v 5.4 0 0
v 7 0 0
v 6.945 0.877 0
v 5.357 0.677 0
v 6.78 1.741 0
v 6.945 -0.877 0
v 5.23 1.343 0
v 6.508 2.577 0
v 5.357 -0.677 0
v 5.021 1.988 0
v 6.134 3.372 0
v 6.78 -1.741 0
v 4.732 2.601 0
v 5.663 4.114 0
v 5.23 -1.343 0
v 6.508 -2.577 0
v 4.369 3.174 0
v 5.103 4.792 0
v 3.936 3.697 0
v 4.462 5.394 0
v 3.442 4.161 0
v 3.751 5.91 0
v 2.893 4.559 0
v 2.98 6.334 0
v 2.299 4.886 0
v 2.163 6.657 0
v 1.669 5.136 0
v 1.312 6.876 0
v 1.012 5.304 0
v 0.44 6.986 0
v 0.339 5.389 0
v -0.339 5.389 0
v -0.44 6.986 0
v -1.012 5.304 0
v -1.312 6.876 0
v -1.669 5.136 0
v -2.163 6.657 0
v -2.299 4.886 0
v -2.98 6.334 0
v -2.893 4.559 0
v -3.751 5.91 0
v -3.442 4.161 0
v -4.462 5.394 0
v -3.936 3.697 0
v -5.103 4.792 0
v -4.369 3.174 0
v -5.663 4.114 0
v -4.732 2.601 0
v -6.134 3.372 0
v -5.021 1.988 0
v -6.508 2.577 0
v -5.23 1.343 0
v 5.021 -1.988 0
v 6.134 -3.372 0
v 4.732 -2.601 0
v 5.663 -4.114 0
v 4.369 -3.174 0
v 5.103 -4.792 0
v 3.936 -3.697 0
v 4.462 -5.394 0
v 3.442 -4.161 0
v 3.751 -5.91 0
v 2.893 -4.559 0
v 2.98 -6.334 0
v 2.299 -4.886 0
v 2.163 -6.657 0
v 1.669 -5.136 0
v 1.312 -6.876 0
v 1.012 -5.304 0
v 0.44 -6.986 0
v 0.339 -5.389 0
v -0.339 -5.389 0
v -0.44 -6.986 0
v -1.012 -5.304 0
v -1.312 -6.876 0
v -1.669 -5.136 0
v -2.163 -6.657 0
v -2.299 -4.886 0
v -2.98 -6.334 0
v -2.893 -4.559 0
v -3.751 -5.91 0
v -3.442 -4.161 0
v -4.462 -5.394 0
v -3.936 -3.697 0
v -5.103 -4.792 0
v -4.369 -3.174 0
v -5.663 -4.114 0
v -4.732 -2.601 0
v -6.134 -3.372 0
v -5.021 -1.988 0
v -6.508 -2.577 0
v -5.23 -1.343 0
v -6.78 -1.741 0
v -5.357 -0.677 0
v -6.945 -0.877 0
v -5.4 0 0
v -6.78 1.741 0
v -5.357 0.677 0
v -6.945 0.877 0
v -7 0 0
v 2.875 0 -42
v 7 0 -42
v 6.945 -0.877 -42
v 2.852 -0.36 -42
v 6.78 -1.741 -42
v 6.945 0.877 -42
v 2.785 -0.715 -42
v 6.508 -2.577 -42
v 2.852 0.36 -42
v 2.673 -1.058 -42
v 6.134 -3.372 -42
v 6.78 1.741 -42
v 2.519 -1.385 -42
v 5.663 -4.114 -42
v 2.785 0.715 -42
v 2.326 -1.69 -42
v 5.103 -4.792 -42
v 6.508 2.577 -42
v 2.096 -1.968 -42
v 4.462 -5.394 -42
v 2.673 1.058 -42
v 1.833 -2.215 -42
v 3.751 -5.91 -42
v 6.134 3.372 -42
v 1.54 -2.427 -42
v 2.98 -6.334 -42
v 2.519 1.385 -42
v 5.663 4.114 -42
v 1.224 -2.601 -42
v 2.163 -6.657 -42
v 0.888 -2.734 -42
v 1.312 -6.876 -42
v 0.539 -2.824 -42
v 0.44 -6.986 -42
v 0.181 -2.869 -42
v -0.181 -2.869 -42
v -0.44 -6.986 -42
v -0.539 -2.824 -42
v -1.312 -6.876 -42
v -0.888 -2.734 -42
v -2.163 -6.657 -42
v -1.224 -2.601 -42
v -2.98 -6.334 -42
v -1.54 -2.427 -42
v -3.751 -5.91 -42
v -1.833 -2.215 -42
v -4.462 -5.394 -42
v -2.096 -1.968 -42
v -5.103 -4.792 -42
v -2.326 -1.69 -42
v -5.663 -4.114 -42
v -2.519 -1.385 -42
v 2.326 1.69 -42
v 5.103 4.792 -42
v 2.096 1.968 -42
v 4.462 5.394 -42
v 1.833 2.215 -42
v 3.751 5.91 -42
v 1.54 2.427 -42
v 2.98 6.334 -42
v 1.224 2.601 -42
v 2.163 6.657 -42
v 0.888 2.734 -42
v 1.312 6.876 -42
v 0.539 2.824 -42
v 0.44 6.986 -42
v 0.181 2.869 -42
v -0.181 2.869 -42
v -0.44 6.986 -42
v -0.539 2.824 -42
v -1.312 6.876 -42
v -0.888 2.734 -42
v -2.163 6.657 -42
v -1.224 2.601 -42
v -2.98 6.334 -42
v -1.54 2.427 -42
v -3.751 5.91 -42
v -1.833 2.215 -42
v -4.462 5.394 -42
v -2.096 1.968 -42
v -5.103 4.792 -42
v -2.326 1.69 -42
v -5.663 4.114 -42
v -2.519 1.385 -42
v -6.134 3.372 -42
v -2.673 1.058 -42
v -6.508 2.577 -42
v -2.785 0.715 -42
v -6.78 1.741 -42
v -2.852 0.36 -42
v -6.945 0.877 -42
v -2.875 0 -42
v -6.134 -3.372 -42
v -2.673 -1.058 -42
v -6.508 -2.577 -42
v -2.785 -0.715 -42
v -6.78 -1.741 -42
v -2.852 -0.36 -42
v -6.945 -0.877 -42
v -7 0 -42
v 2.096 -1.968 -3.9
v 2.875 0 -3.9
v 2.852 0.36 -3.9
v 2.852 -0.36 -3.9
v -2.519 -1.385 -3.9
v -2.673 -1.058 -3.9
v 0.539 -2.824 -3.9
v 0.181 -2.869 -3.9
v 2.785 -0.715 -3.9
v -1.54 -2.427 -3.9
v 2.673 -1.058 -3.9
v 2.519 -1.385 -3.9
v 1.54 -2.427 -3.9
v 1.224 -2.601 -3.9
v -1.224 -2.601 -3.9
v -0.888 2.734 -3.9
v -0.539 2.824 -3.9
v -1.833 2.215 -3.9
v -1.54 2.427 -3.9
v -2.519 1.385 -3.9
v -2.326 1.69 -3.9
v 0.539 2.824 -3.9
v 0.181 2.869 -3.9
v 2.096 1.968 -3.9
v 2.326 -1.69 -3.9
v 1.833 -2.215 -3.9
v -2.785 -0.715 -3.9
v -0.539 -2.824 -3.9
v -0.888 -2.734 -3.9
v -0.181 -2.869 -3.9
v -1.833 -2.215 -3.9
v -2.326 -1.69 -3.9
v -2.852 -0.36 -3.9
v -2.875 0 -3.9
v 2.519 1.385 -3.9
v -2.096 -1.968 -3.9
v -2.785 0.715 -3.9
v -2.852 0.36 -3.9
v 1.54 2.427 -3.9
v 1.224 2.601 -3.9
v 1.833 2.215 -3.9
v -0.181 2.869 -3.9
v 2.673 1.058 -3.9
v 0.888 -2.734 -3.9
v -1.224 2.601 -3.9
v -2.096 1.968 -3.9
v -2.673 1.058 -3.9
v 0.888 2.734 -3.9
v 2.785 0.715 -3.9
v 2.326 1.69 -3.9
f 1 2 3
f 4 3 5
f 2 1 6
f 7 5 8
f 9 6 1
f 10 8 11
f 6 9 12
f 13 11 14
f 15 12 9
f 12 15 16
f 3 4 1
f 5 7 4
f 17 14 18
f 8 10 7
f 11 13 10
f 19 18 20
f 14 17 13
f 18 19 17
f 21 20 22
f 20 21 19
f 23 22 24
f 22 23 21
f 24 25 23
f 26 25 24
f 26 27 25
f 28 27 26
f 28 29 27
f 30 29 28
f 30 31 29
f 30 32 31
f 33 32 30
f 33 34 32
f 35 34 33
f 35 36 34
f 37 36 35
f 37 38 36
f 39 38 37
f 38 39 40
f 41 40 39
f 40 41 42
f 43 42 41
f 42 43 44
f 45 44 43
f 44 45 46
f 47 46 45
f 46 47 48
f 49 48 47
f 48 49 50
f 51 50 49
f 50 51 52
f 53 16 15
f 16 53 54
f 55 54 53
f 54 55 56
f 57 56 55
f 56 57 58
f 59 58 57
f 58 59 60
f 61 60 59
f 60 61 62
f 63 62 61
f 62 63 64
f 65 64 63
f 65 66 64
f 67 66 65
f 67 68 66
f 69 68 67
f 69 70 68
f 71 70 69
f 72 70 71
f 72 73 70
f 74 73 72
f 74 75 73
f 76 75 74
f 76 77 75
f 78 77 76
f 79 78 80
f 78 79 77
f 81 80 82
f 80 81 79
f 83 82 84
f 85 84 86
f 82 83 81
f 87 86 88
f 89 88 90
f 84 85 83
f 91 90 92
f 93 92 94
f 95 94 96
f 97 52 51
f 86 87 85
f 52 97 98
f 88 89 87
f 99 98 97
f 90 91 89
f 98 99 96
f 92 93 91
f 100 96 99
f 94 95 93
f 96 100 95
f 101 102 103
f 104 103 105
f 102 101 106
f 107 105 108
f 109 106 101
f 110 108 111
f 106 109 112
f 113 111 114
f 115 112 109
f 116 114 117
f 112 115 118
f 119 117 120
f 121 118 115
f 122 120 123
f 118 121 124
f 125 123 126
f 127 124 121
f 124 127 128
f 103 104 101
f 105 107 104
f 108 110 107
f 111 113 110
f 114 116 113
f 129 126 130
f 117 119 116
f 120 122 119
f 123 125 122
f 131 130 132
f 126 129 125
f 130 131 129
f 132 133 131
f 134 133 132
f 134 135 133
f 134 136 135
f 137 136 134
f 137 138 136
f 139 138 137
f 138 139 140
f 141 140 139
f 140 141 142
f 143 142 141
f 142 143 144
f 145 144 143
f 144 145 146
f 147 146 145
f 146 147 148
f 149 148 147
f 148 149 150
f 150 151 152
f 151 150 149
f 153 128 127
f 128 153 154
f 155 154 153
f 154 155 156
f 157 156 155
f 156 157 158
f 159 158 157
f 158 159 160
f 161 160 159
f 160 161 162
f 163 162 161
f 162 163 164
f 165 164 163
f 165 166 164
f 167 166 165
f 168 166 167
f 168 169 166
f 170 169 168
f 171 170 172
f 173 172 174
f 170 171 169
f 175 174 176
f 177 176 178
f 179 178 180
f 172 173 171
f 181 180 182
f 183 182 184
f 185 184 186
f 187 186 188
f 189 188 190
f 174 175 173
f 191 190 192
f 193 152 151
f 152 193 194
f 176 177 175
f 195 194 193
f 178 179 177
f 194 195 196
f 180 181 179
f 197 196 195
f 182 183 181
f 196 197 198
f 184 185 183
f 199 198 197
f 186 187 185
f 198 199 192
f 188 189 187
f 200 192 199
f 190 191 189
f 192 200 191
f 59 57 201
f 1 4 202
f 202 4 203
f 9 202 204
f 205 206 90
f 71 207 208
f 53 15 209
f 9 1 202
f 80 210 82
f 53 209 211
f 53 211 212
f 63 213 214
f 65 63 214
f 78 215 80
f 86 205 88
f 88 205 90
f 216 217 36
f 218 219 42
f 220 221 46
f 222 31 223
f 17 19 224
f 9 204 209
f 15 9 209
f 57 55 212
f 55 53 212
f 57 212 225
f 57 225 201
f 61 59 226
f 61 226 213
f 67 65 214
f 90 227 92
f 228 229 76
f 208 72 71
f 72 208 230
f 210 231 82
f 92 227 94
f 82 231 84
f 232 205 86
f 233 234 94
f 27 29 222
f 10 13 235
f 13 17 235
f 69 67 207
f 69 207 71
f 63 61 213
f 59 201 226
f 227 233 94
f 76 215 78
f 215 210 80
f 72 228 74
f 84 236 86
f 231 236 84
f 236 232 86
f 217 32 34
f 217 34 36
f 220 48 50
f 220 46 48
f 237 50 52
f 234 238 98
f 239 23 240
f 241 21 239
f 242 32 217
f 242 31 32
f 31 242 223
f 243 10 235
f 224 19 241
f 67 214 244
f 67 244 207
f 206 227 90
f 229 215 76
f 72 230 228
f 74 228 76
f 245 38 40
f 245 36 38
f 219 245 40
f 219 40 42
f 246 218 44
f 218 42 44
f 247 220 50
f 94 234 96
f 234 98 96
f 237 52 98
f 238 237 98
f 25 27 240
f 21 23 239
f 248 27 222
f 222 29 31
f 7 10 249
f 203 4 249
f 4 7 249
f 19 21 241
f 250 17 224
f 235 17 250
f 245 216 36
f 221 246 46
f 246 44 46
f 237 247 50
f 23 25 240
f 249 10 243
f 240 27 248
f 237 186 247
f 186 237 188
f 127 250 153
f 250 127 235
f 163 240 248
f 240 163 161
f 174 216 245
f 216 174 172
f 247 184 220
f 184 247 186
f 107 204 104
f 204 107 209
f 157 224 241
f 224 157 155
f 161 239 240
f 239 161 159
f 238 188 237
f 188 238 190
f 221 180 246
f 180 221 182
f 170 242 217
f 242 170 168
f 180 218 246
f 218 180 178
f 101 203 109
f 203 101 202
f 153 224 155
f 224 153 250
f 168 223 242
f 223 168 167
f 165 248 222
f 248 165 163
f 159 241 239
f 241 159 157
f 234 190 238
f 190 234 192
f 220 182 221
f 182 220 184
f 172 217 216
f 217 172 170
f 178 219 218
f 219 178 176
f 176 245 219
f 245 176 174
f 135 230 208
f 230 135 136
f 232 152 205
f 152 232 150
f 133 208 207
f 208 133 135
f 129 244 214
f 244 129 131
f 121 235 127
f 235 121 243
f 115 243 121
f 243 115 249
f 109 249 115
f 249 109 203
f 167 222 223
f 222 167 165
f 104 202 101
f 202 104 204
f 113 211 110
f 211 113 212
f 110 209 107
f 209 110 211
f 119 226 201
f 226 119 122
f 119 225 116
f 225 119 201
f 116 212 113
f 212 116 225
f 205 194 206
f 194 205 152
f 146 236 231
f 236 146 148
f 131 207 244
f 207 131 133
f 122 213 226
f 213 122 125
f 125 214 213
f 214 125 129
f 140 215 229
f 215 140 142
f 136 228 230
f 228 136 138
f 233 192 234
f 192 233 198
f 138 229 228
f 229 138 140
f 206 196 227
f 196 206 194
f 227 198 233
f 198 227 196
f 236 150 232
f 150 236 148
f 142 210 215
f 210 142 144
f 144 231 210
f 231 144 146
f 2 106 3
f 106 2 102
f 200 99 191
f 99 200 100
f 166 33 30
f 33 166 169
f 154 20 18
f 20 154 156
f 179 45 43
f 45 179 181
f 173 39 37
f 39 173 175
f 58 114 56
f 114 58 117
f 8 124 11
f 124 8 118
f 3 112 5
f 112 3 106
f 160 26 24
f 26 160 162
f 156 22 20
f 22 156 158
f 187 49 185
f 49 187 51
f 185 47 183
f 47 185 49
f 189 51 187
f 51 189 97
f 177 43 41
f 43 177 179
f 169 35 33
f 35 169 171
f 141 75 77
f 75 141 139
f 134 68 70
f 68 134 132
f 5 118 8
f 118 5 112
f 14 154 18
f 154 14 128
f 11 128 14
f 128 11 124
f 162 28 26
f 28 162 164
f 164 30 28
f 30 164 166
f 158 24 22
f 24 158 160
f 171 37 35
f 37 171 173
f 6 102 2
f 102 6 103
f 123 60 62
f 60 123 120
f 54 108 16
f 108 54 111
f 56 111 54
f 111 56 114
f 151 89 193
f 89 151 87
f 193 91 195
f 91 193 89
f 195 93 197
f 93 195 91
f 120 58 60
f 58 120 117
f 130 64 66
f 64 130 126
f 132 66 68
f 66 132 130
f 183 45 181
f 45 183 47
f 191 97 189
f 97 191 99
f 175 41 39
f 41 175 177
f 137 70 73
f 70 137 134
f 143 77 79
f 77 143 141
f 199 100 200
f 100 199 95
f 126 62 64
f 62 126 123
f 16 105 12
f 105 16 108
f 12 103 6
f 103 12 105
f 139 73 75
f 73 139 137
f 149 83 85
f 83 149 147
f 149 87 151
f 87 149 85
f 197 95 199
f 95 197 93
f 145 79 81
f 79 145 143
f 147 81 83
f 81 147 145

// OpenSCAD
$fn = 50;


difference() {
	union() {
		translate(v = [0, 0, -42.0000000000]) {
			cylinder(h = 42, r = 7.0000000000);
		}
		cylinder(h = 0, r = 16.0000000000);
	}
	union() {
		translate(v = [0, 0, 0]) {
			rotate(a = [0, 0, 0]) {
				difference() {
					union() {
						#translate(v = [0, 0, -42.0000000000]) {
							cylinder(h = 42, r = 2.6000000000);
						}
						#translate(v = [0, 0, -3.9000000000]) {
							cylinder(h = 3.9000000000, r = 7.0000000000, r1 = 2.8750000000, r2 = 5.4000000000);
						}
						#translate(v = [0, 0, -42.0000000000]) {
							cylinder(h = 42, r = 2.8750000000);
						}
						#translate(v = [0, 0, -42.0000000000]) {
							cylinder(h = 42, r = 2.6000000000);
						}
					}
					union();
				}
			}
		}
	}
}
